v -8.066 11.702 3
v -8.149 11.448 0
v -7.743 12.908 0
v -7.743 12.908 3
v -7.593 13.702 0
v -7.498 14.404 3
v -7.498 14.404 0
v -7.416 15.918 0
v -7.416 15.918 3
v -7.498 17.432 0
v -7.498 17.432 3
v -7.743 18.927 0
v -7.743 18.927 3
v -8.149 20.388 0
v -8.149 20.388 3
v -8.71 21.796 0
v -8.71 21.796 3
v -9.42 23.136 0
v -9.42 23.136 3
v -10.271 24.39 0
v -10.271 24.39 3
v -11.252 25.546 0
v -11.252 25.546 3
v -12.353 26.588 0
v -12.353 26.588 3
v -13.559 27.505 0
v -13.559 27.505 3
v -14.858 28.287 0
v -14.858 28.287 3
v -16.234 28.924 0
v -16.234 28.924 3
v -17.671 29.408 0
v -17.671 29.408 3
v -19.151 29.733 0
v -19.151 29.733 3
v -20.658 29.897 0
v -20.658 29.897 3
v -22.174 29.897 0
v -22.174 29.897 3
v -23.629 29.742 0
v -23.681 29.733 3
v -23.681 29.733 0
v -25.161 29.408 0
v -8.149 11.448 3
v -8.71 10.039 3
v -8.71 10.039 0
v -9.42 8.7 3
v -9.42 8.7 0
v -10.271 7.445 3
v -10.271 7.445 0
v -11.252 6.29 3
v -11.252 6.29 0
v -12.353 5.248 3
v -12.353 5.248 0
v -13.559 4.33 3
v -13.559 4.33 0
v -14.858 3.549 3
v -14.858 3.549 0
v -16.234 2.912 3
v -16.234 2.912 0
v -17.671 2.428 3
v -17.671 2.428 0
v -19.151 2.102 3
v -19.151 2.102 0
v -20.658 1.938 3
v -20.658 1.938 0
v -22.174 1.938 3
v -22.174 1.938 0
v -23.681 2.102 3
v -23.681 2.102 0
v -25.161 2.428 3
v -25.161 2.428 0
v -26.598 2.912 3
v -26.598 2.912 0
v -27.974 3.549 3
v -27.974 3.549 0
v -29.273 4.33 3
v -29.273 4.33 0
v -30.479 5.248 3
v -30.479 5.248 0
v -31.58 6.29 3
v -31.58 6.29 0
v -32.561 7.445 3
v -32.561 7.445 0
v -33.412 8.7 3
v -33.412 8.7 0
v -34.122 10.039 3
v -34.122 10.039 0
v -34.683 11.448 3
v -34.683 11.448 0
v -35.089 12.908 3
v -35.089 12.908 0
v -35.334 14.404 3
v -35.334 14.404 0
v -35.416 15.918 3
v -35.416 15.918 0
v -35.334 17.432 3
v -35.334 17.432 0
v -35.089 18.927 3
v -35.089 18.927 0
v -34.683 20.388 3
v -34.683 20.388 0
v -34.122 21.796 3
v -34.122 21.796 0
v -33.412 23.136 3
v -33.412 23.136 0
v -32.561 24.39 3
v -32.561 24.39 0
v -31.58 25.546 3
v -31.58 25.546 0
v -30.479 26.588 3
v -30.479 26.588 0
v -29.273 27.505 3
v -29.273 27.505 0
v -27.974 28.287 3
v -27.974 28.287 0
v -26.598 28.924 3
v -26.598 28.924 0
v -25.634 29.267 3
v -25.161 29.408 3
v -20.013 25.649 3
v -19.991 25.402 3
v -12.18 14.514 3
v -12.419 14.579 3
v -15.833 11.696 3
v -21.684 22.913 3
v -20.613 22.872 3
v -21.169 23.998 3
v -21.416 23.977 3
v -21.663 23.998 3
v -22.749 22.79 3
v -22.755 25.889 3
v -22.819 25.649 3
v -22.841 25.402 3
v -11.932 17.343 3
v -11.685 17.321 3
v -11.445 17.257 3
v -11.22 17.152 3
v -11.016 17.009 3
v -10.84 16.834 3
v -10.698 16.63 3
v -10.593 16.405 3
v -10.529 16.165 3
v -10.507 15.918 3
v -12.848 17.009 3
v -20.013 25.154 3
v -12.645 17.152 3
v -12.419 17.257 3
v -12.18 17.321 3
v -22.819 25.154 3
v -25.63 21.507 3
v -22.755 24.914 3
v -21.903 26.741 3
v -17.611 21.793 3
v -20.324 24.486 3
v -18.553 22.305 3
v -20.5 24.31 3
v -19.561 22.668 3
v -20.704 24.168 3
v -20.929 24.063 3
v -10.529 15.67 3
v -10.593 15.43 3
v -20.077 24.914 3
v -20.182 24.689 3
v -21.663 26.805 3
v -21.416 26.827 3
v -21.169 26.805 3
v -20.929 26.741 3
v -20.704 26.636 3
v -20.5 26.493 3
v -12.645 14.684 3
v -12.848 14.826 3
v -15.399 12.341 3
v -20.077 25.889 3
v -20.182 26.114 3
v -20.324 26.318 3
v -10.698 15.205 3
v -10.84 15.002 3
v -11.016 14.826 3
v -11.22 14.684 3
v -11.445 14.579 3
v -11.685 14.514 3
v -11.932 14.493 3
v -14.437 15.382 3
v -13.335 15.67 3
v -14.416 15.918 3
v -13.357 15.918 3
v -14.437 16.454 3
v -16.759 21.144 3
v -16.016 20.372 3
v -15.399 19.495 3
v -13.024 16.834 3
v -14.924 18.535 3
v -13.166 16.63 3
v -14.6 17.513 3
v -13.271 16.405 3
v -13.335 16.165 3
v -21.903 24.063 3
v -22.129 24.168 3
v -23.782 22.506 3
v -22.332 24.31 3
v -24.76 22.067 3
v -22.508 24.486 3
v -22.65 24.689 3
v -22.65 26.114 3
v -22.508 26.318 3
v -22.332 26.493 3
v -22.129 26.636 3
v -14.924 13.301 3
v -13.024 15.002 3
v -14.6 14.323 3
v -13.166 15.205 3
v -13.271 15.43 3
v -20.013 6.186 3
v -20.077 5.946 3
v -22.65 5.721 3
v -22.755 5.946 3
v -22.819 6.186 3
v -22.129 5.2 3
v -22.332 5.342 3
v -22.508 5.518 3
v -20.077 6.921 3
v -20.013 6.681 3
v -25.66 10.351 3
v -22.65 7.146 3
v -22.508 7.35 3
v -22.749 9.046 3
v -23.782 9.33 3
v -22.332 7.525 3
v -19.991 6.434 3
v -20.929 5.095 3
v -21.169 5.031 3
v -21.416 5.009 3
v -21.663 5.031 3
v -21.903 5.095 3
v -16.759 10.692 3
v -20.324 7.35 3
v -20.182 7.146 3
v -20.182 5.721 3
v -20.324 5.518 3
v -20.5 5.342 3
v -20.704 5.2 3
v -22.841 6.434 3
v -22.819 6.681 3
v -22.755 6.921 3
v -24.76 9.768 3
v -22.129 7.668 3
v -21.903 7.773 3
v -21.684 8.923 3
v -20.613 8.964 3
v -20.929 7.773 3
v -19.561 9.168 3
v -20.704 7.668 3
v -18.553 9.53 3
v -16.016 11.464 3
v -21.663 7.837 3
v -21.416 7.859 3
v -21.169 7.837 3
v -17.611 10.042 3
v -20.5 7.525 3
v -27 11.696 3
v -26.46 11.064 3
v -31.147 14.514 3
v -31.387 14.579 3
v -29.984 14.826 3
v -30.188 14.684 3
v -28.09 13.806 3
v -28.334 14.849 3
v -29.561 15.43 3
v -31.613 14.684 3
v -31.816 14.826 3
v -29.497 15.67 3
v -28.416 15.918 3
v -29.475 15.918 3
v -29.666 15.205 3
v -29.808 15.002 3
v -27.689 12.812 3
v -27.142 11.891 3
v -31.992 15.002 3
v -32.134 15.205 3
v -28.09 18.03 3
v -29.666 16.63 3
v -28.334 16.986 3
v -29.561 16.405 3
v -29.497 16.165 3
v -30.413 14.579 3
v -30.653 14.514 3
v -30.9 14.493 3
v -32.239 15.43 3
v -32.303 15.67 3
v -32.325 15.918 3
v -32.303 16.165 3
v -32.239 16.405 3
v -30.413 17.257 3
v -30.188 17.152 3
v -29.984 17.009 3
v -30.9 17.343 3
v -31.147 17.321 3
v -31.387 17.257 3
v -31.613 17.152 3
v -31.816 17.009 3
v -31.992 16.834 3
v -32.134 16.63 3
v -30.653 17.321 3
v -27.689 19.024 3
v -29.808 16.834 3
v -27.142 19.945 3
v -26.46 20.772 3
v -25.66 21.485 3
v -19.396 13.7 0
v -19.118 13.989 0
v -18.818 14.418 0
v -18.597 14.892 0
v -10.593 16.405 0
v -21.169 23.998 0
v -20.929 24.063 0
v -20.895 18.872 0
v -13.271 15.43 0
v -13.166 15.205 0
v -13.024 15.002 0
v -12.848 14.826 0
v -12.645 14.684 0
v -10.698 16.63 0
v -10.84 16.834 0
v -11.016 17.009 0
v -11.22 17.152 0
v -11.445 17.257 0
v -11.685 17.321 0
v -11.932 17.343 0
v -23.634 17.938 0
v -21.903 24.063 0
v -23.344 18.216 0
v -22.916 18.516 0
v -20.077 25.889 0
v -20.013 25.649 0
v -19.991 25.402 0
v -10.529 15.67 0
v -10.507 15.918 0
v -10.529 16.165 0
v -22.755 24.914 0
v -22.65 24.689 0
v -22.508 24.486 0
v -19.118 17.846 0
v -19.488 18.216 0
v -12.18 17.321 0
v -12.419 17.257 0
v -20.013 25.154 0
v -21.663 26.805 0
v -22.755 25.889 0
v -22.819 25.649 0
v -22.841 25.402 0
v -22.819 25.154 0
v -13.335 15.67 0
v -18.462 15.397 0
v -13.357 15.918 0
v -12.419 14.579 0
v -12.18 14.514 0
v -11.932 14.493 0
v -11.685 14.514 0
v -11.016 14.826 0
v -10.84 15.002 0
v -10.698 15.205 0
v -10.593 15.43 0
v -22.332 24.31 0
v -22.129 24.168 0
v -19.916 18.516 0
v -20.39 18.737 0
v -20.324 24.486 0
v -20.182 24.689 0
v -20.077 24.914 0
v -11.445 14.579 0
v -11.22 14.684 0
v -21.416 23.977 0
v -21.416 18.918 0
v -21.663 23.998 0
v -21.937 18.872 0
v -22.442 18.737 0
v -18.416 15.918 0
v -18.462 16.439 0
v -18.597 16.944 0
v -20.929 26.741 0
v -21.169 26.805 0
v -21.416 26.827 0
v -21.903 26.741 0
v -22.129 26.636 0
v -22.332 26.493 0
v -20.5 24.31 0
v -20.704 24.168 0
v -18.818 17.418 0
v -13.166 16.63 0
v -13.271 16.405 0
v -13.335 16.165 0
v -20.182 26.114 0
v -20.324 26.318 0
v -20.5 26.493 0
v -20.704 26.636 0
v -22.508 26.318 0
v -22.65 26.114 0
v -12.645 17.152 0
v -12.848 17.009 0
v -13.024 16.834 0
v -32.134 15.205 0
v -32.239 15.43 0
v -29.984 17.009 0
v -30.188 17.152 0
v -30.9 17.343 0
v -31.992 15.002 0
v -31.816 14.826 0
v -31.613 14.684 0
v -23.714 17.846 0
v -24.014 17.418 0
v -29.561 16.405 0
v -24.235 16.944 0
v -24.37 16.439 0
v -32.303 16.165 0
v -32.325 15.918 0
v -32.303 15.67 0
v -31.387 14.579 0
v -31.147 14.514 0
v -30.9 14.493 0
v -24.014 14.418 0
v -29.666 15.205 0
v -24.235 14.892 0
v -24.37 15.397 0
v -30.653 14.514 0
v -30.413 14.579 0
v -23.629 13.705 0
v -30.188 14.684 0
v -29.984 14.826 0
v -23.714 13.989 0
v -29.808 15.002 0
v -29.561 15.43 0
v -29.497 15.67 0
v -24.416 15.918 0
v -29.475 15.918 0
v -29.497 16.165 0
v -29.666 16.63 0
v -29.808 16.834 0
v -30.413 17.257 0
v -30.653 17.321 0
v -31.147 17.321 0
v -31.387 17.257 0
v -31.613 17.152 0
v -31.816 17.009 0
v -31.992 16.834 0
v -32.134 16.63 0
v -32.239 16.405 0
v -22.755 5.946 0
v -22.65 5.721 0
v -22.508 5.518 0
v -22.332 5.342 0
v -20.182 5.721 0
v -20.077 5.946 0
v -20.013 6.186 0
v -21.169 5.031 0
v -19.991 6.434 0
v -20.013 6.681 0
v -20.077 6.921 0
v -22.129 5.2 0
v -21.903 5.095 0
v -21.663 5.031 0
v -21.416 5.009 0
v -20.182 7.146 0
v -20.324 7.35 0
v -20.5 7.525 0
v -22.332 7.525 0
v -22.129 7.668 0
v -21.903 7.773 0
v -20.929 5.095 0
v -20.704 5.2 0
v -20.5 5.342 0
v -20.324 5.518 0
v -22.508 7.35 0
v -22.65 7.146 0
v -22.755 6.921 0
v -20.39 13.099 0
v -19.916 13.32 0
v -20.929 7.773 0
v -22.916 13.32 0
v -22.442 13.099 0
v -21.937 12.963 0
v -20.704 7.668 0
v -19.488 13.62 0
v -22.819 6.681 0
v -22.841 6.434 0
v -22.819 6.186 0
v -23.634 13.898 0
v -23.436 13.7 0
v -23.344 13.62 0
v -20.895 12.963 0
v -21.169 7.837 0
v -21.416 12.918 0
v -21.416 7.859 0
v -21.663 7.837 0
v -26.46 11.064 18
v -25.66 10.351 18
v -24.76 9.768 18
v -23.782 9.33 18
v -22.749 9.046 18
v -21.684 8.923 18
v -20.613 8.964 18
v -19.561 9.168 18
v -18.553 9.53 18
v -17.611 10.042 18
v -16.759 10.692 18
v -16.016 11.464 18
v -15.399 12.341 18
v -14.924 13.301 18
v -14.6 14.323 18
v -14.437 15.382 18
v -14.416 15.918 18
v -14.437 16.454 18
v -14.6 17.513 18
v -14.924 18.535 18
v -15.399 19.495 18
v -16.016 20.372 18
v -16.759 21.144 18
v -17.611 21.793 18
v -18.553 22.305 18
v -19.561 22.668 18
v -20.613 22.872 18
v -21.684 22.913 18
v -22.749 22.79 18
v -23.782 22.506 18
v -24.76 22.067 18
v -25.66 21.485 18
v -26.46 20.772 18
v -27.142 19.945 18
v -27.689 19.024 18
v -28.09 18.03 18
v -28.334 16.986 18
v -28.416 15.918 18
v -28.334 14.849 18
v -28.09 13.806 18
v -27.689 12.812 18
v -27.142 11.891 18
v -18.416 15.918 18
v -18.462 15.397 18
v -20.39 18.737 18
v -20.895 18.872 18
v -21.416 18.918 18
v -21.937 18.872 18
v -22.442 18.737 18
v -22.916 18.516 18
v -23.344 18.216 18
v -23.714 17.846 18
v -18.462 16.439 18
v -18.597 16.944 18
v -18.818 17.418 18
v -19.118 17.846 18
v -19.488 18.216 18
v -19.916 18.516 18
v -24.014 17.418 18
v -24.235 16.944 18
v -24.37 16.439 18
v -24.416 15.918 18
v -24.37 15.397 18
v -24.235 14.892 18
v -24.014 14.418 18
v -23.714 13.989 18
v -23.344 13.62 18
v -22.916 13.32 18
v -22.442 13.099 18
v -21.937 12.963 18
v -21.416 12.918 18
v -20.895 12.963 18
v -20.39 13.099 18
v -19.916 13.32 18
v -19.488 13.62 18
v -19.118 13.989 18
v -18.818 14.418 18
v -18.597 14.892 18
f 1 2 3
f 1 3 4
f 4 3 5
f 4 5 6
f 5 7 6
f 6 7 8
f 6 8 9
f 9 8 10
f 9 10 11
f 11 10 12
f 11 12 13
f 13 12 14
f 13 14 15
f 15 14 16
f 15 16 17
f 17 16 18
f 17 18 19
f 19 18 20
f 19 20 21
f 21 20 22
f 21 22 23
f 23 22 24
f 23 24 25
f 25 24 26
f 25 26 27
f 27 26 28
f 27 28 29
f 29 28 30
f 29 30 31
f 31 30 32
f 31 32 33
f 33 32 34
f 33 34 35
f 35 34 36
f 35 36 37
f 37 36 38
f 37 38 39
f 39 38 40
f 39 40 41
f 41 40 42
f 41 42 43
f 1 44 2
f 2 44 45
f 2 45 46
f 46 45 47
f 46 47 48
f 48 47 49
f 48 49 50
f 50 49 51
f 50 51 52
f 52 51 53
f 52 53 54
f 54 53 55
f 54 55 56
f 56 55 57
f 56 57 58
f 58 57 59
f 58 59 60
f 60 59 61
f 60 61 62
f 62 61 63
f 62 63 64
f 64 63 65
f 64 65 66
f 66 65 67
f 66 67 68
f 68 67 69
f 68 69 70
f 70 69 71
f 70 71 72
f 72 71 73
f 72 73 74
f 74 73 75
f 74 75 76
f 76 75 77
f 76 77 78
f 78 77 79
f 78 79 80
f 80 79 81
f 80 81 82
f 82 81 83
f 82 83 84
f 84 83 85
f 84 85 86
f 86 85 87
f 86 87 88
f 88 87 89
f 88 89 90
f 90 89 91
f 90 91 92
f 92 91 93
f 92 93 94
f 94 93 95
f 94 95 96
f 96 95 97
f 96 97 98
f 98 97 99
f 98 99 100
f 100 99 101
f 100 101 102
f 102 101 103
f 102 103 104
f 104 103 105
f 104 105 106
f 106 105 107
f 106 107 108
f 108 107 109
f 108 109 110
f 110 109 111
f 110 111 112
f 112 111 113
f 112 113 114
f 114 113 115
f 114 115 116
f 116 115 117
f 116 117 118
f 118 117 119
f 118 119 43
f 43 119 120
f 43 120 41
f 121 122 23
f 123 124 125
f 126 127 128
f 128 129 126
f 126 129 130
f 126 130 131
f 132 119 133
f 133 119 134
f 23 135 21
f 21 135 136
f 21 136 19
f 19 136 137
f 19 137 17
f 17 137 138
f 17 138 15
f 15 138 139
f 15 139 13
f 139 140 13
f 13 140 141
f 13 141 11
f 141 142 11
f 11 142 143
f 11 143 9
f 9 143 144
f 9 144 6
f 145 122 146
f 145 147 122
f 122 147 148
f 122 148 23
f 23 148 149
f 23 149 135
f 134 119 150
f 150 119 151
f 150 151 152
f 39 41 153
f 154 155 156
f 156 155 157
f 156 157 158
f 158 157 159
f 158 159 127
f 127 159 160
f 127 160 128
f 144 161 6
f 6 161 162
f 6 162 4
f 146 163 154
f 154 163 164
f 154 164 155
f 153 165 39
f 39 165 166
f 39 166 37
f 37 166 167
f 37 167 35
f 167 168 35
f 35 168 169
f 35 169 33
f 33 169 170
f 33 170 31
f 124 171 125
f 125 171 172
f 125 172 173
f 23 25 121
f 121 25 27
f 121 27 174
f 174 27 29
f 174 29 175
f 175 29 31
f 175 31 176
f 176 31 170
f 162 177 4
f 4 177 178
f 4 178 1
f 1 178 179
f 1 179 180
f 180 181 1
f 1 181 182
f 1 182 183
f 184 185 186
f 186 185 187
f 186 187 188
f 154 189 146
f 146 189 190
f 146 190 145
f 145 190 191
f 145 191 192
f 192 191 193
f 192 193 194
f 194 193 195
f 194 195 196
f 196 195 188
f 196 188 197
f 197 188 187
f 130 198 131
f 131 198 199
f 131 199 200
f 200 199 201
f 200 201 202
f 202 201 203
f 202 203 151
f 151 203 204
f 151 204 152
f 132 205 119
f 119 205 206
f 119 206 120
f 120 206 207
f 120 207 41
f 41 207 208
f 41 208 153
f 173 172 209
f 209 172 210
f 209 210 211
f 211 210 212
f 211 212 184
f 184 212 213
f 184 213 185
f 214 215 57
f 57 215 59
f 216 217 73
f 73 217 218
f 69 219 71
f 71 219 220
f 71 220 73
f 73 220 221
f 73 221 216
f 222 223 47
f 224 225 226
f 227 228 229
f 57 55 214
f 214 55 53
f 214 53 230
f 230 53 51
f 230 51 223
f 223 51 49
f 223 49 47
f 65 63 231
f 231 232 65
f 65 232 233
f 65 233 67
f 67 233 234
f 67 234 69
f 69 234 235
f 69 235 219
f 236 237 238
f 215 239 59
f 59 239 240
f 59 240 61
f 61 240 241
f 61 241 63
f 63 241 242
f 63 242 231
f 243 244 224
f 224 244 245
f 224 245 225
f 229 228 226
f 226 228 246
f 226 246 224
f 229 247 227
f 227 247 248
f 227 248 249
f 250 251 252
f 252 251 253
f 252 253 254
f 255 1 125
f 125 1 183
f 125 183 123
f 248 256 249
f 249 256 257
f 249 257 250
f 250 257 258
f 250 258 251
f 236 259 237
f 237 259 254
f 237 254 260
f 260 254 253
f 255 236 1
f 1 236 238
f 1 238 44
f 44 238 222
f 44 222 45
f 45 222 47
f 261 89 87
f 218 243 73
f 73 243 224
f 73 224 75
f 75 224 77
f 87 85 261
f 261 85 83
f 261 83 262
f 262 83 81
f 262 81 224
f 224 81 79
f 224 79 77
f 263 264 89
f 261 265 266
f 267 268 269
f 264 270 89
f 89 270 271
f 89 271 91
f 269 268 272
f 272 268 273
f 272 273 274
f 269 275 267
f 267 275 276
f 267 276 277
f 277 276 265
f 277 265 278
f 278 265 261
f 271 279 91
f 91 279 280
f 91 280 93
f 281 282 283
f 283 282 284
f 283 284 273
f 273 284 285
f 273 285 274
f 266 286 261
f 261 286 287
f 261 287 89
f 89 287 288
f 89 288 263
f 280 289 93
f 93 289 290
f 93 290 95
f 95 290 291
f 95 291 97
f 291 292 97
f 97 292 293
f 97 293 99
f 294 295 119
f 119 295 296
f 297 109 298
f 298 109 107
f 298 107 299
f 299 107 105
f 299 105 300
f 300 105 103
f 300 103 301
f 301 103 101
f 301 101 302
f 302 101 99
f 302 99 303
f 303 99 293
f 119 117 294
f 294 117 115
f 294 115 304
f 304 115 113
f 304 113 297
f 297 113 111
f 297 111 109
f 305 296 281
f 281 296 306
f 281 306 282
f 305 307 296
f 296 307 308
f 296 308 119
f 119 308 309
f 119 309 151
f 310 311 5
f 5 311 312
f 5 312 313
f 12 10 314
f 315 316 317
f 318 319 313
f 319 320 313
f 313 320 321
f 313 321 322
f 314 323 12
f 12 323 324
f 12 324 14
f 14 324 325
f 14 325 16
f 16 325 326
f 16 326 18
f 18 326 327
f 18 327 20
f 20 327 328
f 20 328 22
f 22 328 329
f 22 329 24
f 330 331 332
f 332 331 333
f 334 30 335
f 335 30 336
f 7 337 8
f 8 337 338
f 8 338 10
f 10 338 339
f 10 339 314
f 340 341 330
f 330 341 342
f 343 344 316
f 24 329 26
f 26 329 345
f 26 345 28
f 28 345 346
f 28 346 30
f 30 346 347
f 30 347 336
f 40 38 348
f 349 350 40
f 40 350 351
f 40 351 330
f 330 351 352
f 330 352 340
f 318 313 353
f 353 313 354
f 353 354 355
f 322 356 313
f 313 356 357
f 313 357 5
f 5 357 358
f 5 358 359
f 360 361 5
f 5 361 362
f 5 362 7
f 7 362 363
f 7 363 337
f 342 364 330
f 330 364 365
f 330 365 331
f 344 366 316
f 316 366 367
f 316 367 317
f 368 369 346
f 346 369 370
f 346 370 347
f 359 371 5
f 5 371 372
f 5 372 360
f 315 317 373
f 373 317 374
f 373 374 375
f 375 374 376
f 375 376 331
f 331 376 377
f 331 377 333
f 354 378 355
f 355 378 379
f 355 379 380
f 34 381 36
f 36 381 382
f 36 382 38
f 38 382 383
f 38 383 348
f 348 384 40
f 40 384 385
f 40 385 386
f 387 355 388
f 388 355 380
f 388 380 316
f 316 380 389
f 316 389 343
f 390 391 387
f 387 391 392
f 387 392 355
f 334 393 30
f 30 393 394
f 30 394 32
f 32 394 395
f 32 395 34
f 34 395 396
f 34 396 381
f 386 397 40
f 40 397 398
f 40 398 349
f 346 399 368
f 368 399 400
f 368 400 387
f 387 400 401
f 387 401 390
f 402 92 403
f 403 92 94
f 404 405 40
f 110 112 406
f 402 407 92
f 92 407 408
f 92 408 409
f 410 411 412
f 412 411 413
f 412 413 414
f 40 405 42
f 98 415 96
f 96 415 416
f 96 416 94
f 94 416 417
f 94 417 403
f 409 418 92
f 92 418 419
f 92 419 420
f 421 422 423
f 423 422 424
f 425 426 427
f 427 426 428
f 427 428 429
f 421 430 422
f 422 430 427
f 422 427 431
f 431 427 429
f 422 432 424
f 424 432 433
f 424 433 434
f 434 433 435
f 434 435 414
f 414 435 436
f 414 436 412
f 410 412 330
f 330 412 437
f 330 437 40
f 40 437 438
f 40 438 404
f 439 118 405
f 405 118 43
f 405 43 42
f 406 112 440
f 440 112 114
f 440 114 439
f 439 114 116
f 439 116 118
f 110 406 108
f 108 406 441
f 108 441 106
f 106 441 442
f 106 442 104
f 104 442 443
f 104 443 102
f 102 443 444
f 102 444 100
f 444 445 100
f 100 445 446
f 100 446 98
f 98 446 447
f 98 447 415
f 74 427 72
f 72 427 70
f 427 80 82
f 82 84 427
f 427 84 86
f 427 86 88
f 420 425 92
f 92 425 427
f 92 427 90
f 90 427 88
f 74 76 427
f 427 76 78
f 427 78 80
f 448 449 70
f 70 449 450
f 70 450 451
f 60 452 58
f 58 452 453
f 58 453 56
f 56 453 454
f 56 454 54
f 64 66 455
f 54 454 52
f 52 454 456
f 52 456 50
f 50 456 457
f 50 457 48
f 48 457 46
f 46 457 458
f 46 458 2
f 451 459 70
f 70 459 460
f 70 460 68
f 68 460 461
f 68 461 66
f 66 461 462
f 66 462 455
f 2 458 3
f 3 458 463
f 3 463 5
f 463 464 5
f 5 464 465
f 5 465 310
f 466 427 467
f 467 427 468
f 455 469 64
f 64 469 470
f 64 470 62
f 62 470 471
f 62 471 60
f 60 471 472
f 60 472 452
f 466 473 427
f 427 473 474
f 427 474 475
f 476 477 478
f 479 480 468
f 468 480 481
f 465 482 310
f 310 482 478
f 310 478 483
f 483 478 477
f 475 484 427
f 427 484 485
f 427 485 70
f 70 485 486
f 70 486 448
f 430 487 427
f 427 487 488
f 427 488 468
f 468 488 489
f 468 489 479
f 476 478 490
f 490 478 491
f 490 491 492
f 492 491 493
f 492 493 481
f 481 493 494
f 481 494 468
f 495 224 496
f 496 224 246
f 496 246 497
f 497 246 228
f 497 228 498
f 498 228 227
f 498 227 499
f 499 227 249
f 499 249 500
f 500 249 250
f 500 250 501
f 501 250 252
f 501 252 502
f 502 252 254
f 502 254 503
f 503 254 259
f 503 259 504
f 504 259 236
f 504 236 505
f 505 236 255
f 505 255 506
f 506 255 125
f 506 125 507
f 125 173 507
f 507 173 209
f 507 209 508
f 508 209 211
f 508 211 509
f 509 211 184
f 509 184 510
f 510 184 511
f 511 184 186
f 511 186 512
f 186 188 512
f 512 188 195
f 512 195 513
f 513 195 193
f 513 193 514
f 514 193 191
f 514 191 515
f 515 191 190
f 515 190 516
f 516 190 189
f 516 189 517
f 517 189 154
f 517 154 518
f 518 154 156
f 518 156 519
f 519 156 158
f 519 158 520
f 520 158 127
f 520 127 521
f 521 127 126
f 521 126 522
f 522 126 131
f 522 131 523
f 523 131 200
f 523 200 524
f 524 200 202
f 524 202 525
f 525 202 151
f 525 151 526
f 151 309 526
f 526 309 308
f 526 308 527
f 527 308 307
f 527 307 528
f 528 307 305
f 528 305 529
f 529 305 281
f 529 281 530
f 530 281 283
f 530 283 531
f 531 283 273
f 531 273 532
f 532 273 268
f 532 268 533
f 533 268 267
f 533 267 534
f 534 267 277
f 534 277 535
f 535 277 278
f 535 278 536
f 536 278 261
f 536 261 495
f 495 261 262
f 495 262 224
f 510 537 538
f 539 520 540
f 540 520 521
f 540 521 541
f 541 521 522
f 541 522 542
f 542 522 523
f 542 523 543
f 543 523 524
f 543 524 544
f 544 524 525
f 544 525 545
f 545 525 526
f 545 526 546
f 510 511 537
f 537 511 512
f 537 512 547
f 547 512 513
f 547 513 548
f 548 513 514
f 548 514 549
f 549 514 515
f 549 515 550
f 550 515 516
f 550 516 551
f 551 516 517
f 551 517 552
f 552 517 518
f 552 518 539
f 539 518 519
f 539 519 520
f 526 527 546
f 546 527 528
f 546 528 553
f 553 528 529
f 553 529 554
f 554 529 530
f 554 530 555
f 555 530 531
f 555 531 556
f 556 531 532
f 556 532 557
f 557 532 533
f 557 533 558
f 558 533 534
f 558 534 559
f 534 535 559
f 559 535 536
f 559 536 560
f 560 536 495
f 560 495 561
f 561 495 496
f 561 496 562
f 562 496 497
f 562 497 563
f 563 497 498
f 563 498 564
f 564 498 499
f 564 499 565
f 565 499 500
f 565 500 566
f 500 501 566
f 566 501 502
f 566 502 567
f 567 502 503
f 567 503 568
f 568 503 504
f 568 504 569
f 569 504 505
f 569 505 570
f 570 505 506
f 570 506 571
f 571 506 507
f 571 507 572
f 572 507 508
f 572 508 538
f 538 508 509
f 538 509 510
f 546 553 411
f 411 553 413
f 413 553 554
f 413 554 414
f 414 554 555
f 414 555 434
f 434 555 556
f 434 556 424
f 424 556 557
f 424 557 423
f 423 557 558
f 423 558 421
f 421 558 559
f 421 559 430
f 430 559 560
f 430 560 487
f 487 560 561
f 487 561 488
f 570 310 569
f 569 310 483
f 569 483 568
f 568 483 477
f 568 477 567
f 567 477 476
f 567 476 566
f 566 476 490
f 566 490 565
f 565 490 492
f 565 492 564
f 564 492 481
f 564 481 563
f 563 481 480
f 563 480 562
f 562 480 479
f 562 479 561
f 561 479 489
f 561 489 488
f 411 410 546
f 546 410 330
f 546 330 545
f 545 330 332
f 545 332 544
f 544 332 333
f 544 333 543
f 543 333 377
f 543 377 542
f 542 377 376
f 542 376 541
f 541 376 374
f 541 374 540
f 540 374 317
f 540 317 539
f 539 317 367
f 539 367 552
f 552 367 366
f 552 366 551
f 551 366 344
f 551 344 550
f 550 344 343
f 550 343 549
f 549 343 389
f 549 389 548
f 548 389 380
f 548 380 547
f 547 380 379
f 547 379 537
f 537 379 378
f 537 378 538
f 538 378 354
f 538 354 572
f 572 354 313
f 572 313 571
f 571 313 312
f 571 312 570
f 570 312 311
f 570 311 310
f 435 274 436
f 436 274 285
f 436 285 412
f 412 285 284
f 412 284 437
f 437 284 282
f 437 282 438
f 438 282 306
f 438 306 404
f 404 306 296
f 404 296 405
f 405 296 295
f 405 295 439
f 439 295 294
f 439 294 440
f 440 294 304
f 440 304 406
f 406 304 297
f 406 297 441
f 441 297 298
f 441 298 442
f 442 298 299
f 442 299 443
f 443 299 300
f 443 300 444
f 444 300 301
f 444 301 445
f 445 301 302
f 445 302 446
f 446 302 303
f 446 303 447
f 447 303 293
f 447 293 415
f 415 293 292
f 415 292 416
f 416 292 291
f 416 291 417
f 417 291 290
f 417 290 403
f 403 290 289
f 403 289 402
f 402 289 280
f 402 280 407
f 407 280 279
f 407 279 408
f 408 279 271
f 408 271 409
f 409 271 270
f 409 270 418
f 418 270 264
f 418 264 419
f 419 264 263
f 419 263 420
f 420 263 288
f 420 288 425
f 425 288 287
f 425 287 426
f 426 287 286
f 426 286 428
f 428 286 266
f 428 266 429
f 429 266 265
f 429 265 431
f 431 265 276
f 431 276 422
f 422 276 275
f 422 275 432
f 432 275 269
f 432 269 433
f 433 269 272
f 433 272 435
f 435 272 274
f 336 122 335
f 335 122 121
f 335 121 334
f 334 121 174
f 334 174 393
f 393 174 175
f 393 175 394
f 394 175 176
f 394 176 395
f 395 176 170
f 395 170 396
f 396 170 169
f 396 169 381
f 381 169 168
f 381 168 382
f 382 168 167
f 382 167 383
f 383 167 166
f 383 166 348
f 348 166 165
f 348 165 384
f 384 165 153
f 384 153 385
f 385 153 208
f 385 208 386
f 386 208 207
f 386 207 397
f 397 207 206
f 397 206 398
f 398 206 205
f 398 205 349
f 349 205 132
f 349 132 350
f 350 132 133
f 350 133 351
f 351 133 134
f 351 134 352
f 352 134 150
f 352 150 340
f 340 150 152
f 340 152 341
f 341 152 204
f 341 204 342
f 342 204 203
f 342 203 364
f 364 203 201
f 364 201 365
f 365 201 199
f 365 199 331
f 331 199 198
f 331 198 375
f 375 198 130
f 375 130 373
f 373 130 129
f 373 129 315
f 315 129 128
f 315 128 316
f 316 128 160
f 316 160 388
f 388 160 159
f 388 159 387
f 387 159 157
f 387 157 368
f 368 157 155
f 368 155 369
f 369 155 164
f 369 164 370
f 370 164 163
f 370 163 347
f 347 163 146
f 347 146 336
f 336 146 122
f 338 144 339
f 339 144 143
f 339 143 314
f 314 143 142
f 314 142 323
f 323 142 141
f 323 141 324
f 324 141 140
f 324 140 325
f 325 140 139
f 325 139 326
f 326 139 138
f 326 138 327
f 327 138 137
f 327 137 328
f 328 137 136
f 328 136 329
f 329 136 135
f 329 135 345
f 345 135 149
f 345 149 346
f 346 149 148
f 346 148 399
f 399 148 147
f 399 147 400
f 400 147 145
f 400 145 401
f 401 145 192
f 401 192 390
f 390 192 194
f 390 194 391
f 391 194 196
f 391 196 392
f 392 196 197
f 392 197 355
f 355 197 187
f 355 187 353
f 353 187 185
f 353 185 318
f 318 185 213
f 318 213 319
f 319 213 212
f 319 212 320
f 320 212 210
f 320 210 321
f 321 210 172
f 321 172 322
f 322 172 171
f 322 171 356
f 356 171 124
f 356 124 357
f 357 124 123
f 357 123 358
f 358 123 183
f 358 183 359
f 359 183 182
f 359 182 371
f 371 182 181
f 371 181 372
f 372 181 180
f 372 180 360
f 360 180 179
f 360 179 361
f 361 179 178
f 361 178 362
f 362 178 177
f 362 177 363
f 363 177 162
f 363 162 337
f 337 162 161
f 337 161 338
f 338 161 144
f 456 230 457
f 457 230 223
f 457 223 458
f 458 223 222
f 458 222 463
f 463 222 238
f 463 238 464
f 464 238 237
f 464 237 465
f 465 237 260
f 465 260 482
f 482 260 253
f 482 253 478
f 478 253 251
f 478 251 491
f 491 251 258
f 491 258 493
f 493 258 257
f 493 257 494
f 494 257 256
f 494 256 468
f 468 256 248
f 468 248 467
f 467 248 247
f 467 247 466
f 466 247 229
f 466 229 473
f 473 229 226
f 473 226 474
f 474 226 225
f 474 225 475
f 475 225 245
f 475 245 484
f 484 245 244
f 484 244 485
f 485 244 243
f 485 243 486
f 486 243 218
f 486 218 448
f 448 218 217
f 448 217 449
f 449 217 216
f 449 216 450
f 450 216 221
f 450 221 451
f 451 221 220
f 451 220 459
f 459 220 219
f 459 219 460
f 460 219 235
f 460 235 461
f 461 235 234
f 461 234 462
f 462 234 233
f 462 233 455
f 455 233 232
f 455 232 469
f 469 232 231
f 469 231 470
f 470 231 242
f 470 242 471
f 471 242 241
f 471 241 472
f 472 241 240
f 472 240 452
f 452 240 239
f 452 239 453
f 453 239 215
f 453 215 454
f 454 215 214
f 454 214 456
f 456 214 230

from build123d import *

# Parameters (mm, degrees)
IZIM1_R                     = 14
Y_KSEKLIK_EKSTR_ZYON1_DEPTH = 3
IZIM2_R                     = 7
Y_KSEKLIK_EKSTR_ZYON2_DEPTH = 15
IZIM3_R                     = 3
KES_EKSTR_ZYON1_DEPTH       = 18
IZIM4_R                     = 1.425
KES_EKSTR_ZYON2_DEPTH       = 18
DAIRESEL_KAPLAMA1_COUNT     = 4


with BuildPart() as part:
    # Çizim1 → Yükseklik-Ekstrüzyon1 (new body)
    with BuildSketch(Plane.XY):
        with Locations((-21.416051853, 15.917841079)):
            Circle(IZIM1_R)
    extrude(amount=Y_KSEKLIK_EKSTR_ZYON1_DEPTH)

    # Çizim2 → Yükseklik-Ekstrüzyon2 (add)
    with BuildSketch(Plane.XY.offset(3)):
        with Locations((-21.416051853, 15.917841079)):
            Circle(IZIM2_R)
    extrude(amount=Y_KSEKLIK_EKSTR_ZYON2_DEPTH)

    # Çizim3 → Kes-Ekstrüzyon1 (cut)
    with BuildSketch(Plane.XY.offset(18)):
        with Locations((-21.416051853, 15.917841079)):
            Circle(IZIM3_R)
    extrude(amount=-KES_EKSTR_ZYON1_DEPTH, mode=Mode.SUBTRACT)

    # Çizim4 → Kes-Ekstrüzyon2 (cut)
    with BuildSketch(Plane.XY.offset(3)):
        with Locations((-30.900018725, 15.917841079)):
            Circle(IZIM4_R)
    kes_ekstr_zyon2 = extrude(amount=-KES_EKSTR_ZYON2_DEPTH, mode=Mode.SUBTRACT)

    # Dairesel Kaplama1: Kes-Ekstrüzyon2 ×4 about axis
    dairesel_kaplama1_axis = Axis((-21.416051853, 15.917841079, 0), (0, 0, 1))
    for i in range(1, DAIRESEL_KAPLAMA1_COUNT):
        add(kes_ekstr_zyon2.rotate(dairesel_kaplama1_axis, i * 360 / DAIRESEL_KAPLAMA1_COUNT), mode=Mode.SUBTRACT)


solid = part.part
